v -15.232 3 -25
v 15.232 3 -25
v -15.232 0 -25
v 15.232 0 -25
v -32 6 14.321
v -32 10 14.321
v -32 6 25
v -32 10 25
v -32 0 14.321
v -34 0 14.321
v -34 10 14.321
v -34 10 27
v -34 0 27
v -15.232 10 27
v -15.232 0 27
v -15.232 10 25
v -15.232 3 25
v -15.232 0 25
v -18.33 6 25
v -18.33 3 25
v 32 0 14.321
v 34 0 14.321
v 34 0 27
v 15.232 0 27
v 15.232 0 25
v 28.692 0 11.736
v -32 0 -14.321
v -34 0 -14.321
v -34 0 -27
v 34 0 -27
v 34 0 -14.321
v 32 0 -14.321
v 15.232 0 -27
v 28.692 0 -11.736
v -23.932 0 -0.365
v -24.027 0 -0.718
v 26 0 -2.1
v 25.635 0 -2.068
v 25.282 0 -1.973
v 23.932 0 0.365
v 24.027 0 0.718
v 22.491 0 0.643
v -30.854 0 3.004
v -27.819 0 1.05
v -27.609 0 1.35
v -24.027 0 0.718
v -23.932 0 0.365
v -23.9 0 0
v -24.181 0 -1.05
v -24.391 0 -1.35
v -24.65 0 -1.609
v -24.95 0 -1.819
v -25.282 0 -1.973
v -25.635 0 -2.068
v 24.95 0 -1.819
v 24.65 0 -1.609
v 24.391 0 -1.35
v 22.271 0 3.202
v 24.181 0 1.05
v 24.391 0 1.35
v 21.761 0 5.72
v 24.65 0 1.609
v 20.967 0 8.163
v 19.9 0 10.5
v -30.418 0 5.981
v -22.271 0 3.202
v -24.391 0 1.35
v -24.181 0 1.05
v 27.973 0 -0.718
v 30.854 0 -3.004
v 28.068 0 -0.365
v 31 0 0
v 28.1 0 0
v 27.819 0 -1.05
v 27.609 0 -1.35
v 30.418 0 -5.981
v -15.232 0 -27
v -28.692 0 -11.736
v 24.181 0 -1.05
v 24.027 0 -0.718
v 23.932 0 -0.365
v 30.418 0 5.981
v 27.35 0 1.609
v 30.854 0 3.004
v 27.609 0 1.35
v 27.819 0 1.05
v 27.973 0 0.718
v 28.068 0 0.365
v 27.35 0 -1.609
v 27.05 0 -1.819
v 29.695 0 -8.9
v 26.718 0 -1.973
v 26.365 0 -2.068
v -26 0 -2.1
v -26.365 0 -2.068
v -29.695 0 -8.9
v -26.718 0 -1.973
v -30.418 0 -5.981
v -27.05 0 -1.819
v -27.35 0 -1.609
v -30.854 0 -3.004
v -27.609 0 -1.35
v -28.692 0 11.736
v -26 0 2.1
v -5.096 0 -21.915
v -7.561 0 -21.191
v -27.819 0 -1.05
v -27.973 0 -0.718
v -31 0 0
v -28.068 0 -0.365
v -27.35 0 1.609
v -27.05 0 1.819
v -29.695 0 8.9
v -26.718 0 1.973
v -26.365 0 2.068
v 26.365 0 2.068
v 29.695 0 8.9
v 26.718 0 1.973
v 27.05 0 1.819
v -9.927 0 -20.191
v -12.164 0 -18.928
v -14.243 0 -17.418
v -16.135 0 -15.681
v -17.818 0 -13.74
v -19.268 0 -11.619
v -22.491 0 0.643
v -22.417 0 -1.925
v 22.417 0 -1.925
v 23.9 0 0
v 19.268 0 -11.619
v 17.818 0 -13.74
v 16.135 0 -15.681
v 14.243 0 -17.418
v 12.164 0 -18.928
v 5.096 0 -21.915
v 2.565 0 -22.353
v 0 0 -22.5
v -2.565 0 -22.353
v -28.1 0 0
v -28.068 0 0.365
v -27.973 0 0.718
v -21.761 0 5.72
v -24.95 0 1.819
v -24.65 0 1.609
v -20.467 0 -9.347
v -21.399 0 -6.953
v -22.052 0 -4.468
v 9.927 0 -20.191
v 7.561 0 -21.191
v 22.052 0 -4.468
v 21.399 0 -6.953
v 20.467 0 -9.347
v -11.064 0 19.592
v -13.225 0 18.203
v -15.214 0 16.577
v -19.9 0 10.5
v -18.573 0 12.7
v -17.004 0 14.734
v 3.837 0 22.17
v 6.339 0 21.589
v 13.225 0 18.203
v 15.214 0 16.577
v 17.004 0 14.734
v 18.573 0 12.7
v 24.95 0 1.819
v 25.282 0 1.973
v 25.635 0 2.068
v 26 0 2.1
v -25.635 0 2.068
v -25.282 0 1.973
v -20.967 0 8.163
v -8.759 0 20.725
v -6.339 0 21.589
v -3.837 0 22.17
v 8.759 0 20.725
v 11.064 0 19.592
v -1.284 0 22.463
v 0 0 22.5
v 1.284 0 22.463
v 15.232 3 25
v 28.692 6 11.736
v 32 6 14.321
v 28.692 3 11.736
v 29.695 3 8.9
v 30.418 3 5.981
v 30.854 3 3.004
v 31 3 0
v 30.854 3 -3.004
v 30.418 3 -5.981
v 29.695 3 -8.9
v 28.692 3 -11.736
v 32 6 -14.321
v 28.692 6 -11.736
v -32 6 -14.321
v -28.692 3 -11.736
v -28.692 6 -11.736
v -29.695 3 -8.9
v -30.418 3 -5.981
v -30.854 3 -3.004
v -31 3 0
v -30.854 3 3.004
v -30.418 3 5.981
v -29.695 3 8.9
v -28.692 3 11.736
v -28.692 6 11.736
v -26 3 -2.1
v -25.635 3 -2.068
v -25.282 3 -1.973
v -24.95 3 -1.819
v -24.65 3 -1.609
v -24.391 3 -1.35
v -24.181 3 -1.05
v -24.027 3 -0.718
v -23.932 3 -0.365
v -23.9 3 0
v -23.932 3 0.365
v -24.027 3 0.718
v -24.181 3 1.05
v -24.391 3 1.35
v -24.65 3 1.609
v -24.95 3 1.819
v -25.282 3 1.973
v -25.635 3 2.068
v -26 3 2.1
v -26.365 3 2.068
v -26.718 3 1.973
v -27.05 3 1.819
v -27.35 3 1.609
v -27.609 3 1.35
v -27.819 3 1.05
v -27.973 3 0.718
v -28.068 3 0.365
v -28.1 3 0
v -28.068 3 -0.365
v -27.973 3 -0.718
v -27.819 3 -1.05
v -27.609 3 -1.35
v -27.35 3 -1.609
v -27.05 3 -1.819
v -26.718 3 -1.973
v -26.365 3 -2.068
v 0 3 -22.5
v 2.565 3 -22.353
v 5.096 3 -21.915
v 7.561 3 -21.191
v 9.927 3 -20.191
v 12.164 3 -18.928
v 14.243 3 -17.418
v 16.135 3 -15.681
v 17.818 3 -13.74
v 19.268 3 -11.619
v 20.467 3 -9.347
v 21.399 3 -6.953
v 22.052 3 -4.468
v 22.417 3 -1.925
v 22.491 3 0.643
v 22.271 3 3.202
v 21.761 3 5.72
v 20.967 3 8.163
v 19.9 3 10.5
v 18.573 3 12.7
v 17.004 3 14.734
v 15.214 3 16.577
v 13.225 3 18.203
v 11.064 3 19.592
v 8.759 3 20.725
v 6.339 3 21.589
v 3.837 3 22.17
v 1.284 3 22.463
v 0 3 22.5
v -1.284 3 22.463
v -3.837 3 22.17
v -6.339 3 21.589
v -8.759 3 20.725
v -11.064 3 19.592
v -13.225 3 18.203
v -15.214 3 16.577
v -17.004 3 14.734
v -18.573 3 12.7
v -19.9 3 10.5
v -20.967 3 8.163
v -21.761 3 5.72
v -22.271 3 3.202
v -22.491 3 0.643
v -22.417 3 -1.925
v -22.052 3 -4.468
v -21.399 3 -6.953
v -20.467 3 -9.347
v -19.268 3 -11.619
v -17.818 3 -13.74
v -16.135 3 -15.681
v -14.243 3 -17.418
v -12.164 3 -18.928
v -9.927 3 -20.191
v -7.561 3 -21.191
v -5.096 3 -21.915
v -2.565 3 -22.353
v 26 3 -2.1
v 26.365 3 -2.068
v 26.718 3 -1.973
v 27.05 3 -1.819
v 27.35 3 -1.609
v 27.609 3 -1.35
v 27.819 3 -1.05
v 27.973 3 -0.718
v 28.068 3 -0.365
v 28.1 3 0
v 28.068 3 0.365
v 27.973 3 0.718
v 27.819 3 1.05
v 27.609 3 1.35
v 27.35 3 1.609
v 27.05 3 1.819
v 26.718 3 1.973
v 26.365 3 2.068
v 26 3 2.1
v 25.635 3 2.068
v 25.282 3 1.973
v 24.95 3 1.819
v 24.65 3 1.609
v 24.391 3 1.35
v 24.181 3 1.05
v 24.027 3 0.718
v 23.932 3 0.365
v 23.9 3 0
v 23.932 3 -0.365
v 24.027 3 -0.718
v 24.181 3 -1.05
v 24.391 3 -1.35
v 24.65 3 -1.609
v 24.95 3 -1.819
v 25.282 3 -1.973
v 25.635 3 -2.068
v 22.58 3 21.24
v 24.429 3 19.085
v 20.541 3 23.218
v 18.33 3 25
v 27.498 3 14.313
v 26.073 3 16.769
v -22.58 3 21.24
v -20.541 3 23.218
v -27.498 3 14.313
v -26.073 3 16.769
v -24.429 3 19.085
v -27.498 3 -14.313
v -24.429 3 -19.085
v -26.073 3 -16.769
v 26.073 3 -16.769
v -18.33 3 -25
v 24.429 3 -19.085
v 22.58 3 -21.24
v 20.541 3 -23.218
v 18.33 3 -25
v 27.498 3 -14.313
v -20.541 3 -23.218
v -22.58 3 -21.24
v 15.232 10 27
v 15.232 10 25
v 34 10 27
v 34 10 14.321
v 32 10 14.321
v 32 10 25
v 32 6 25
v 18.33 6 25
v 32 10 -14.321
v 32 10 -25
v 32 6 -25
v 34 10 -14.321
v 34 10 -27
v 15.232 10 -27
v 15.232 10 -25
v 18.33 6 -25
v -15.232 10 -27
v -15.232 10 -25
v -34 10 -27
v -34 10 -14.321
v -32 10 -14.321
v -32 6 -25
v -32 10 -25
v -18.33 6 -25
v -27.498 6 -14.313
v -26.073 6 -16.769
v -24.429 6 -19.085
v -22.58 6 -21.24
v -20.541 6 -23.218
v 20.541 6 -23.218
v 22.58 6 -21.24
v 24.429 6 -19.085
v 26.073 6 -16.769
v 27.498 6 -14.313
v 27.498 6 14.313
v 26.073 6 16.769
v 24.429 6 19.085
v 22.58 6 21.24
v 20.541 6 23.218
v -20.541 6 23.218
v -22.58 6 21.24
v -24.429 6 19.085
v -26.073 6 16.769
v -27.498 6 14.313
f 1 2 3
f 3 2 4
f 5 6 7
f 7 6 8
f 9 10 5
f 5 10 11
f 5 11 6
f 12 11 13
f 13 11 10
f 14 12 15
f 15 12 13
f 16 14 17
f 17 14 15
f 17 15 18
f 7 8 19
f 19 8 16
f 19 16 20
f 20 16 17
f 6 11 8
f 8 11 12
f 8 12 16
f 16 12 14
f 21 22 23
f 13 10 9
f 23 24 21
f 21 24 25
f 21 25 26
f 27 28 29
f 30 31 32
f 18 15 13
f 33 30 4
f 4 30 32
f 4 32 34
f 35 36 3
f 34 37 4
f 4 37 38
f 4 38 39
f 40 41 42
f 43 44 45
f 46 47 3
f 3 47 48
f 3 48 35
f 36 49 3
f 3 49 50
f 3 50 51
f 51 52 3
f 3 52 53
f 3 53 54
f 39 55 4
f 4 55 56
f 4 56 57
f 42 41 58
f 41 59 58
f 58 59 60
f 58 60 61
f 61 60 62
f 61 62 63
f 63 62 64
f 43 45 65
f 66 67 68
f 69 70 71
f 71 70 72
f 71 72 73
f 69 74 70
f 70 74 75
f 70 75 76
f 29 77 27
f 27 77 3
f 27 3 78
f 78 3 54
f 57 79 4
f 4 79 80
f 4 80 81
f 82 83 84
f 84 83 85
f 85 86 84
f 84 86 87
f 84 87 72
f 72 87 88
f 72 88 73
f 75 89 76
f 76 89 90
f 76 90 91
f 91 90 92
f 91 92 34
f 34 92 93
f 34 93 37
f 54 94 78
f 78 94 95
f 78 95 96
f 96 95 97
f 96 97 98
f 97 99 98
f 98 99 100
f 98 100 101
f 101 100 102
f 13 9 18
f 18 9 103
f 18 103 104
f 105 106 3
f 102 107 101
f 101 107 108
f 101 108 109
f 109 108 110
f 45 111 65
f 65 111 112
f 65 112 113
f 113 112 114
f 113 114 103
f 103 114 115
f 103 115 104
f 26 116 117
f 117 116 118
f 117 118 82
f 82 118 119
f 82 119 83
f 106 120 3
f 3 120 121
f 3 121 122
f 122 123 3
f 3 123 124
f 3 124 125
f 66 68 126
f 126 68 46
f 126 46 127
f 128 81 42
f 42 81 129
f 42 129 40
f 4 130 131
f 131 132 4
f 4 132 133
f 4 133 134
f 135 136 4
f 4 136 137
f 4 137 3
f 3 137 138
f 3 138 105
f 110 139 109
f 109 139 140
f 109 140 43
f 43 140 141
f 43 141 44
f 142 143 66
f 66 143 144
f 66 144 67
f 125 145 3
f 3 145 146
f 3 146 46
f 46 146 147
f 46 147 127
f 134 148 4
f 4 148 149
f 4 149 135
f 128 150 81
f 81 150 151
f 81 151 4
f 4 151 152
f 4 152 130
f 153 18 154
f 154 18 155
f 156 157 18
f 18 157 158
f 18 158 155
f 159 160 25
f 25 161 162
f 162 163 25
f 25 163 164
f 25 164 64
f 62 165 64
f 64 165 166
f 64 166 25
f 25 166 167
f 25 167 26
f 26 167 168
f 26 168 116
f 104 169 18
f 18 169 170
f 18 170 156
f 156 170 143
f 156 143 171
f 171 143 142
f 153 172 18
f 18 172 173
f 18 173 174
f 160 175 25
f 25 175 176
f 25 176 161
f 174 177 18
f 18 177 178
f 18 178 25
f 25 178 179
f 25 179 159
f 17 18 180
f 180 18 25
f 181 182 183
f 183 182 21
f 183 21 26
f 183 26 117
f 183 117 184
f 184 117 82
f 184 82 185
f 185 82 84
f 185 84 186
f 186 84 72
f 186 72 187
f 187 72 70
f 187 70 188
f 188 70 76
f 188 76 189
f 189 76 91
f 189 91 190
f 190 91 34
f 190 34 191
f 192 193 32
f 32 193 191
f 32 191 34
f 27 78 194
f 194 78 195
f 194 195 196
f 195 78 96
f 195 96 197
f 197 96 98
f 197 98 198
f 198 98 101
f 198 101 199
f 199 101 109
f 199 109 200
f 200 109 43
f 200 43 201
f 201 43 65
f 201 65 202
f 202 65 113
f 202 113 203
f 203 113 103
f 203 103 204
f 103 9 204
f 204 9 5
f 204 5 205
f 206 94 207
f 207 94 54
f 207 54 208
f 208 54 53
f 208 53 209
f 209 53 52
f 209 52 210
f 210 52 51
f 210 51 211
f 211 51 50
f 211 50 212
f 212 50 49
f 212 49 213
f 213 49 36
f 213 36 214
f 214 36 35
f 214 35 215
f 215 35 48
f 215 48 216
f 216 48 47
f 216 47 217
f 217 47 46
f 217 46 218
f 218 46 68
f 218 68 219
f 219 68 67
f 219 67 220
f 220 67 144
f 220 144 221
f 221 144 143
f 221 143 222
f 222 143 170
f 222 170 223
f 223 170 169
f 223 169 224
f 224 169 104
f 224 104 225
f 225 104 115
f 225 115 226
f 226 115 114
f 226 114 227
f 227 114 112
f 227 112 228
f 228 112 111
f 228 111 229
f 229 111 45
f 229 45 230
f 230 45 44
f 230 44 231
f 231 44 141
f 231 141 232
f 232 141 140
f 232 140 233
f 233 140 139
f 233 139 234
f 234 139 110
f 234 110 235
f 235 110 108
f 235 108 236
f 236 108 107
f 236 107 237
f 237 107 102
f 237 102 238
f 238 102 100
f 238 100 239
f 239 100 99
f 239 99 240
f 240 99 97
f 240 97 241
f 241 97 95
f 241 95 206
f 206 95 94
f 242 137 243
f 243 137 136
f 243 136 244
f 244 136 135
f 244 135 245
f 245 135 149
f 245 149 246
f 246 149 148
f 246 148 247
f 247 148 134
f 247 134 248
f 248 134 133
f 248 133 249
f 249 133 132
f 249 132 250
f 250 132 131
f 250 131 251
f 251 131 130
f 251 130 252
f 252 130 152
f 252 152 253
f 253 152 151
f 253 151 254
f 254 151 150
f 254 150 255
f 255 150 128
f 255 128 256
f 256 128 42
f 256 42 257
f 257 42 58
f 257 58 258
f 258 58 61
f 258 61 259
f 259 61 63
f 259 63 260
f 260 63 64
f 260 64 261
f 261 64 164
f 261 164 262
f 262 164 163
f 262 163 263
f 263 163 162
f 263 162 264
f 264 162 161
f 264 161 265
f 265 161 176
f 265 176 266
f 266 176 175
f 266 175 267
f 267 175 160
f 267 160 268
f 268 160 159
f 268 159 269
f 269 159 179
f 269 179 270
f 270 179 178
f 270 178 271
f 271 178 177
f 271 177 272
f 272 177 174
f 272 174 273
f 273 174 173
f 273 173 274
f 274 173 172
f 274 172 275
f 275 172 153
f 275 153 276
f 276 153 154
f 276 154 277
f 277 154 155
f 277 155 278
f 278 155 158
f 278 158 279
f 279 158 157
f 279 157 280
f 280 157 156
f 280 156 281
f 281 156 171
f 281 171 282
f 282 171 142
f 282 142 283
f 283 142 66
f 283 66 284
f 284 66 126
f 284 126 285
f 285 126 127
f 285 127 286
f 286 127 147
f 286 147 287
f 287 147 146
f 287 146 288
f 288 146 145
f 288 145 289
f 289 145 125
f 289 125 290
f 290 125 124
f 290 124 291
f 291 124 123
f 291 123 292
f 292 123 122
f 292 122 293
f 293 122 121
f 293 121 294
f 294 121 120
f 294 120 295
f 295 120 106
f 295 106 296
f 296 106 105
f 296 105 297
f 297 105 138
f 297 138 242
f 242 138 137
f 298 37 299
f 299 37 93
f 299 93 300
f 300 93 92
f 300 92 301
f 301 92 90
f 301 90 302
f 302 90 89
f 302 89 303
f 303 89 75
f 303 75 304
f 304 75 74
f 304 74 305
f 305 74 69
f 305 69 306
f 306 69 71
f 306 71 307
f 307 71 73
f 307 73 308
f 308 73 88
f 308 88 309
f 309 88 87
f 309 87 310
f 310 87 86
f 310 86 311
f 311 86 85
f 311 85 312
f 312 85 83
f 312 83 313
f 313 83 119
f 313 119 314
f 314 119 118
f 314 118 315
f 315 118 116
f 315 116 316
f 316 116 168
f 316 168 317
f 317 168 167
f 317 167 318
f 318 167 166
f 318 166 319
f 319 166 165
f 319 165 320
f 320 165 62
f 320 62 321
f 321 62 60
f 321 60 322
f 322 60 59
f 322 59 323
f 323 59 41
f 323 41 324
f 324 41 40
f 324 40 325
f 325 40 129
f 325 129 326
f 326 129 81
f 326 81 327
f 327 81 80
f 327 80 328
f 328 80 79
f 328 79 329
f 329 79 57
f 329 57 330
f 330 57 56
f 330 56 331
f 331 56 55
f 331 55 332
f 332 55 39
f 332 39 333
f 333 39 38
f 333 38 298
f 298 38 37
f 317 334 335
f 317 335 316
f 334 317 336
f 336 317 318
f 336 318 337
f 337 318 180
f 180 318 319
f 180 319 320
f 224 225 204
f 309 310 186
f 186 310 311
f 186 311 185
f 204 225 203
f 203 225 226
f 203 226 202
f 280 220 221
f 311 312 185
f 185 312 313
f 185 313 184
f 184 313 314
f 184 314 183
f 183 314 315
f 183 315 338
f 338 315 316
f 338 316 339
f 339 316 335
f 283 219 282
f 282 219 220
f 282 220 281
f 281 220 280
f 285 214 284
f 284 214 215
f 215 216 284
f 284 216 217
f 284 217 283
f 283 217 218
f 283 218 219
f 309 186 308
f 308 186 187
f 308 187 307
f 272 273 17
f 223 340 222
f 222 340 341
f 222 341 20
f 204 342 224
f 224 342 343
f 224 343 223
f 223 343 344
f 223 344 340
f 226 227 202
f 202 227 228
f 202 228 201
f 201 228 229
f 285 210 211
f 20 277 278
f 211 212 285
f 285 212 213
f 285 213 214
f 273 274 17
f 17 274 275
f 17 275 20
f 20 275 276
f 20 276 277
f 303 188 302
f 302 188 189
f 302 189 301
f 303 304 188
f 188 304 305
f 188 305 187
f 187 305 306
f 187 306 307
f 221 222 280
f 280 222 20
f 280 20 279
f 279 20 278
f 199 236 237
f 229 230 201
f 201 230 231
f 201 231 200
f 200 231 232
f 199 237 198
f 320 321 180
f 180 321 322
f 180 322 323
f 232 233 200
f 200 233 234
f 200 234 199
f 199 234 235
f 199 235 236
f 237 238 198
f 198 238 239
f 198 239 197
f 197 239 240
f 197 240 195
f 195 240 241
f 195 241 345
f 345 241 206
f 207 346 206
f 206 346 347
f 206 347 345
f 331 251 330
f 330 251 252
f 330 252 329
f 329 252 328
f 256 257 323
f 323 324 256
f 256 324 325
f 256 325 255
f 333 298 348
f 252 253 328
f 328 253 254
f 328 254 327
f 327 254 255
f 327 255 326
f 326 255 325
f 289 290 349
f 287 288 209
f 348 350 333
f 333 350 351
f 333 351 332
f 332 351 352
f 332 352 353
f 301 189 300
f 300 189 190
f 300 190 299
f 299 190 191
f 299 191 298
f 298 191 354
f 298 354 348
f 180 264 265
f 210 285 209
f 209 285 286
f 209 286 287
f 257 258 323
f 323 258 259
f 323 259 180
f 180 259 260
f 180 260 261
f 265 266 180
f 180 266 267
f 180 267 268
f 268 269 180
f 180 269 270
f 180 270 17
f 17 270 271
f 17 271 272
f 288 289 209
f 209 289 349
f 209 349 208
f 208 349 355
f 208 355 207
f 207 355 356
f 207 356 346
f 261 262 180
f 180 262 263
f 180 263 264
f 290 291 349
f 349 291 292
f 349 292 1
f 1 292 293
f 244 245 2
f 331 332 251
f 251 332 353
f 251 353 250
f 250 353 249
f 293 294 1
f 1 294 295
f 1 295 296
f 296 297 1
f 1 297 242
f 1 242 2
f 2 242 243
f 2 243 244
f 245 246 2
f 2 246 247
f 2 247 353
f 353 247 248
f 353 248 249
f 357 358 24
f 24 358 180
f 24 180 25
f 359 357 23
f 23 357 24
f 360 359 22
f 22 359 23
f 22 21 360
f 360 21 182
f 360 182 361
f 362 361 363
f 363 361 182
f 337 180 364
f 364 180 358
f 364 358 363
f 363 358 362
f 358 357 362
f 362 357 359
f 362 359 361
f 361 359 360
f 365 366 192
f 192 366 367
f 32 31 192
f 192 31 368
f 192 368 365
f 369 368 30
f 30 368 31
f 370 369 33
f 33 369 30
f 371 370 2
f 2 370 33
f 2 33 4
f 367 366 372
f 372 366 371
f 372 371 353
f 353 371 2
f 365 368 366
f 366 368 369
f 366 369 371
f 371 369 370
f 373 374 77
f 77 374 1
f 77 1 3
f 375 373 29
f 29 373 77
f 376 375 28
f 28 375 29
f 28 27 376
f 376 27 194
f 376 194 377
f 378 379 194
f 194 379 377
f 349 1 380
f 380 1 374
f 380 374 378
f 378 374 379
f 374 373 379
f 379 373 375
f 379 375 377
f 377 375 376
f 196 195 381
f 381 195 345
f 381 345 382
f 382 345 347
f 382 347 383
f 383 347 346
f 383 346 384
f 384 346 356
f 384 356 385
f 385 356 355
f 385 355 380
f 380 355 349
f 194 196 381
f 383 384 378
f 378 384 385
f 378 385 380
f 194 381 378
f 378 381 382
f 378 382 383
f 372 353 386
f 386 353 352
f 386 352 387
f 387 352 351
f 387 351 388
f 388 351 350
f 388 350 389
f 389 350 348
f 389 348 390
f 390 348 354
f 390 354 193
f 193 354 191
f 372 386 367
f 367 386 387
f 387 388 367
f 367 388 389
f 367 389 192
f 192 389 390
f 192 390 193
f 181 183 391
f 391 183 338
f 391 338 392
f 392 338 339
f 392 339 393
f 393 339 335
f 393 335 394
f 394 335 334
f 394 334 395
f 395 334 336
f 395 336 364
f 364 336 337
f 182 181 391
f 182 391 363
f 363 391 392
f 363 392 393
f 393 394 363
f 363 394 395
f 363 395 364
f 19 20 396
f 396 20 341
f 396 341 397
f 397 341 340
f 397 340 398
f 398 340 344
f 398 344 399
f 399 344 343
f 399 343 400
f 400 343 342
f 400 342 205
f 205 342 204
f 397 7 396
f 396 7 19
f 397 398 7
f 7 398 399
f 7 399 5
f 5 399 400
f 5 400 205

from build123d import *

# Parameters (mm, degrees)
BOSS_EXTRUDE1_DEPTH   = 10
BOSS_EXTRUDE1_2_DEPTH = 10
BOSS_EXTRUDE1_3_DEPTH = 10
BOSS_EXTRUDE1_4_DEPTH = 10
SKETCH1_9_R           = 22.5
SKETCH1_9_R_2         = 2.1
BOSS_EXTRUDE2_DEPTH   = 3
BOSS_EXTRUDE3_DEPTH   = 6


with BuildPart() as part:
    # Sketch1 → Boss-Extrude1 (new body)
    with BuildSketch(Plane(origin=(0, 0, 0), x_dir=(1, 0, 0), z_dir=(0, 1, 0))):
        Polygon((32, -14.320549047), (32, -25), (15.231546212, -25), (15.231546212, -27), (34, -27), (34, -14.320549047), align=None)
    extrude(amount=BOSS_EXTRUDE1_DEPTH)



with BuildPart() as body_2:
    # Sketch1 → Boss-Extrude1 2 (new body)
    with BuildSketch(Plane(origin=(0, 0, 0), x_dir=(1, 0, 0), z_dir=(0, 1, 0))):
        Polygon((32, 25), (32, 14.320549047), (34, 14.320549047), (34, 27), (15.231546212, 27), (15.231546212, 25), align=None)
    extrude(amount=BOSS_EXTRUDE1_2_DEPTH)


with BuildPart() as body_3:
    # Sketch1 → Boss-Extrude1 3 (new body)
    with BuildSketch(Plane(origin=(0, 0, 0), x_dir=(1, 0, 0), z_dir=(0, 1, 0))):
        Polygon((-15.231546212, -27), (-15.231546212, -25), (-32, -25), (-32, -14.320549047), (-34, -14.320549047), (-34, -27), align=None)
    extrude(amount=BOSS_EXTRUDE1_3_DEPTH)


with BuildPart() as body_4:
    # Sketch1 → Boss-Extrude1 4 (new body)
    with BuildSketch(Plane(origin=(0, 0, 0), x_dir=(1, 0, 0), z_dir=(0, 1, 0))):
        Polygon((-32, 25), (-15.231546212, 25), (-15.231546212, 27), (-34, 27), (-34, 14.320549047), (-32, 14.320549047), align=None)
    extrude(amount=BOSS_EXTRUDE1_4_DEPTH)


with BuildPart() as part_1:
    add(part.part)

    add(body_2.part)  # Boss-Extrude2 merges body 2

    add(body_3.part)  # Boss-Extrude2 merges body 3

    add(body_4.part)  # Boss-Extrude2 merges body 4
    # Sketch1<9> → Boss-Extrude2 (add)
    with BuildSketch(Plane(origin=(0, 0, 0), x_dir=(1, 0, 0), z_dir=(0, 1, 0))):
        with BuildLine():
            Line((32, -25), (32, -14.320549047))
            Line((32, -14.320549047), (28.692414075, -11.736497543))
            ThreePointArc((28.692414075, -11.736497543), (31, 0), (28.692414075, 11.736497543))
            Line((28.692414075, 11.736497543), (32, 14.320549047))
            Line((32, 14.320549047), (32, 25))
            Line((32, 25), (-32, 25))
            Line((-32, 25), (-32, 14.320549047))
            Line((-32, 14.320549047), (-28.692414075, 11.736497543))
            ThreePointArc((-28.692414075, 11.736497543), (-31, 0), (-28.692414075, -11.736497543))
            Line((-28.692414075, -11.736497543), (-32, -14.320549047))
            Line((-32, -14.320549047), (-32, -25))
            Line((-32, -25), (32, -25))
        make_face()
        Circle(SKETCH1_9_R, mode=Mode.SUBTRACT)
        with Locations((26, 0)):
            Circle(SKETCH1_9_R_2, mode=Mode.SUBTRACT)
        with Locations((-26, 0)):
            Circle(SKETCH1_9_R_2, mode=Mode.SUBTRACT)
    extrude(amount=BOSS_EXTRUDE2_DEPTH)

    # Sketch1<11> → Boss-Extrude3 (add)
    with BuildSketch(Plane(origin=(0, 0, 0), x_dir=(1, 0, 0), z_dir=(0, 1, 0))):
        with BuildLine():
            Line((18.33030278, -25), (32, -25))
            Line((32, -25), (32, -14.320549047))
            Line((32, -14.320549047), (28.692414075, -11.736497543))
            ThreePointArc((28.692414075, -11.736497543), (24.428755585, -19.084965301), (18.33030278, -25))
        make_face()
        with BuildLine():
            Line((28.692414075, 11.736497543), (32, 14.320549047))
            Line((32, 14.320549047), (32, 25))
            Line((32, 25), (18.33030278, 25))
            ThreePointArc((18.33030278, 25), (24.428755585, 19.084965301), (28.692414075, 11.736497543))
        make_face()
        with BuildLine():
            Line((-32, -25), (-18.33030278, -25))
            ThreePointArc((-18.33030278, -25), (-24.428755585, -19.084965301), (-28.692414075, -11.736497543))
            Line((-28.692414075, -11.736497543), (-32, -14.320549047))
            Line((-32, -14.320549047), (-32, -25))
        make_face()
        with BuildLine():
            Line((-32, 25), (-32, 14.320549047))
            Line((-32, 14.320549047), (-28.692414075, 11.736497543))
            ThreePointArc((-28.692414075, 11.736497543), (-24.428755585, 19.084965301), (-18.33030278, 25))
            Line((-18.33030278, 25), (-32, 25))
        make_face()
    extrude(amount=BOSS_EXTRUDE3_DEPTH)


solid = part_1.part
